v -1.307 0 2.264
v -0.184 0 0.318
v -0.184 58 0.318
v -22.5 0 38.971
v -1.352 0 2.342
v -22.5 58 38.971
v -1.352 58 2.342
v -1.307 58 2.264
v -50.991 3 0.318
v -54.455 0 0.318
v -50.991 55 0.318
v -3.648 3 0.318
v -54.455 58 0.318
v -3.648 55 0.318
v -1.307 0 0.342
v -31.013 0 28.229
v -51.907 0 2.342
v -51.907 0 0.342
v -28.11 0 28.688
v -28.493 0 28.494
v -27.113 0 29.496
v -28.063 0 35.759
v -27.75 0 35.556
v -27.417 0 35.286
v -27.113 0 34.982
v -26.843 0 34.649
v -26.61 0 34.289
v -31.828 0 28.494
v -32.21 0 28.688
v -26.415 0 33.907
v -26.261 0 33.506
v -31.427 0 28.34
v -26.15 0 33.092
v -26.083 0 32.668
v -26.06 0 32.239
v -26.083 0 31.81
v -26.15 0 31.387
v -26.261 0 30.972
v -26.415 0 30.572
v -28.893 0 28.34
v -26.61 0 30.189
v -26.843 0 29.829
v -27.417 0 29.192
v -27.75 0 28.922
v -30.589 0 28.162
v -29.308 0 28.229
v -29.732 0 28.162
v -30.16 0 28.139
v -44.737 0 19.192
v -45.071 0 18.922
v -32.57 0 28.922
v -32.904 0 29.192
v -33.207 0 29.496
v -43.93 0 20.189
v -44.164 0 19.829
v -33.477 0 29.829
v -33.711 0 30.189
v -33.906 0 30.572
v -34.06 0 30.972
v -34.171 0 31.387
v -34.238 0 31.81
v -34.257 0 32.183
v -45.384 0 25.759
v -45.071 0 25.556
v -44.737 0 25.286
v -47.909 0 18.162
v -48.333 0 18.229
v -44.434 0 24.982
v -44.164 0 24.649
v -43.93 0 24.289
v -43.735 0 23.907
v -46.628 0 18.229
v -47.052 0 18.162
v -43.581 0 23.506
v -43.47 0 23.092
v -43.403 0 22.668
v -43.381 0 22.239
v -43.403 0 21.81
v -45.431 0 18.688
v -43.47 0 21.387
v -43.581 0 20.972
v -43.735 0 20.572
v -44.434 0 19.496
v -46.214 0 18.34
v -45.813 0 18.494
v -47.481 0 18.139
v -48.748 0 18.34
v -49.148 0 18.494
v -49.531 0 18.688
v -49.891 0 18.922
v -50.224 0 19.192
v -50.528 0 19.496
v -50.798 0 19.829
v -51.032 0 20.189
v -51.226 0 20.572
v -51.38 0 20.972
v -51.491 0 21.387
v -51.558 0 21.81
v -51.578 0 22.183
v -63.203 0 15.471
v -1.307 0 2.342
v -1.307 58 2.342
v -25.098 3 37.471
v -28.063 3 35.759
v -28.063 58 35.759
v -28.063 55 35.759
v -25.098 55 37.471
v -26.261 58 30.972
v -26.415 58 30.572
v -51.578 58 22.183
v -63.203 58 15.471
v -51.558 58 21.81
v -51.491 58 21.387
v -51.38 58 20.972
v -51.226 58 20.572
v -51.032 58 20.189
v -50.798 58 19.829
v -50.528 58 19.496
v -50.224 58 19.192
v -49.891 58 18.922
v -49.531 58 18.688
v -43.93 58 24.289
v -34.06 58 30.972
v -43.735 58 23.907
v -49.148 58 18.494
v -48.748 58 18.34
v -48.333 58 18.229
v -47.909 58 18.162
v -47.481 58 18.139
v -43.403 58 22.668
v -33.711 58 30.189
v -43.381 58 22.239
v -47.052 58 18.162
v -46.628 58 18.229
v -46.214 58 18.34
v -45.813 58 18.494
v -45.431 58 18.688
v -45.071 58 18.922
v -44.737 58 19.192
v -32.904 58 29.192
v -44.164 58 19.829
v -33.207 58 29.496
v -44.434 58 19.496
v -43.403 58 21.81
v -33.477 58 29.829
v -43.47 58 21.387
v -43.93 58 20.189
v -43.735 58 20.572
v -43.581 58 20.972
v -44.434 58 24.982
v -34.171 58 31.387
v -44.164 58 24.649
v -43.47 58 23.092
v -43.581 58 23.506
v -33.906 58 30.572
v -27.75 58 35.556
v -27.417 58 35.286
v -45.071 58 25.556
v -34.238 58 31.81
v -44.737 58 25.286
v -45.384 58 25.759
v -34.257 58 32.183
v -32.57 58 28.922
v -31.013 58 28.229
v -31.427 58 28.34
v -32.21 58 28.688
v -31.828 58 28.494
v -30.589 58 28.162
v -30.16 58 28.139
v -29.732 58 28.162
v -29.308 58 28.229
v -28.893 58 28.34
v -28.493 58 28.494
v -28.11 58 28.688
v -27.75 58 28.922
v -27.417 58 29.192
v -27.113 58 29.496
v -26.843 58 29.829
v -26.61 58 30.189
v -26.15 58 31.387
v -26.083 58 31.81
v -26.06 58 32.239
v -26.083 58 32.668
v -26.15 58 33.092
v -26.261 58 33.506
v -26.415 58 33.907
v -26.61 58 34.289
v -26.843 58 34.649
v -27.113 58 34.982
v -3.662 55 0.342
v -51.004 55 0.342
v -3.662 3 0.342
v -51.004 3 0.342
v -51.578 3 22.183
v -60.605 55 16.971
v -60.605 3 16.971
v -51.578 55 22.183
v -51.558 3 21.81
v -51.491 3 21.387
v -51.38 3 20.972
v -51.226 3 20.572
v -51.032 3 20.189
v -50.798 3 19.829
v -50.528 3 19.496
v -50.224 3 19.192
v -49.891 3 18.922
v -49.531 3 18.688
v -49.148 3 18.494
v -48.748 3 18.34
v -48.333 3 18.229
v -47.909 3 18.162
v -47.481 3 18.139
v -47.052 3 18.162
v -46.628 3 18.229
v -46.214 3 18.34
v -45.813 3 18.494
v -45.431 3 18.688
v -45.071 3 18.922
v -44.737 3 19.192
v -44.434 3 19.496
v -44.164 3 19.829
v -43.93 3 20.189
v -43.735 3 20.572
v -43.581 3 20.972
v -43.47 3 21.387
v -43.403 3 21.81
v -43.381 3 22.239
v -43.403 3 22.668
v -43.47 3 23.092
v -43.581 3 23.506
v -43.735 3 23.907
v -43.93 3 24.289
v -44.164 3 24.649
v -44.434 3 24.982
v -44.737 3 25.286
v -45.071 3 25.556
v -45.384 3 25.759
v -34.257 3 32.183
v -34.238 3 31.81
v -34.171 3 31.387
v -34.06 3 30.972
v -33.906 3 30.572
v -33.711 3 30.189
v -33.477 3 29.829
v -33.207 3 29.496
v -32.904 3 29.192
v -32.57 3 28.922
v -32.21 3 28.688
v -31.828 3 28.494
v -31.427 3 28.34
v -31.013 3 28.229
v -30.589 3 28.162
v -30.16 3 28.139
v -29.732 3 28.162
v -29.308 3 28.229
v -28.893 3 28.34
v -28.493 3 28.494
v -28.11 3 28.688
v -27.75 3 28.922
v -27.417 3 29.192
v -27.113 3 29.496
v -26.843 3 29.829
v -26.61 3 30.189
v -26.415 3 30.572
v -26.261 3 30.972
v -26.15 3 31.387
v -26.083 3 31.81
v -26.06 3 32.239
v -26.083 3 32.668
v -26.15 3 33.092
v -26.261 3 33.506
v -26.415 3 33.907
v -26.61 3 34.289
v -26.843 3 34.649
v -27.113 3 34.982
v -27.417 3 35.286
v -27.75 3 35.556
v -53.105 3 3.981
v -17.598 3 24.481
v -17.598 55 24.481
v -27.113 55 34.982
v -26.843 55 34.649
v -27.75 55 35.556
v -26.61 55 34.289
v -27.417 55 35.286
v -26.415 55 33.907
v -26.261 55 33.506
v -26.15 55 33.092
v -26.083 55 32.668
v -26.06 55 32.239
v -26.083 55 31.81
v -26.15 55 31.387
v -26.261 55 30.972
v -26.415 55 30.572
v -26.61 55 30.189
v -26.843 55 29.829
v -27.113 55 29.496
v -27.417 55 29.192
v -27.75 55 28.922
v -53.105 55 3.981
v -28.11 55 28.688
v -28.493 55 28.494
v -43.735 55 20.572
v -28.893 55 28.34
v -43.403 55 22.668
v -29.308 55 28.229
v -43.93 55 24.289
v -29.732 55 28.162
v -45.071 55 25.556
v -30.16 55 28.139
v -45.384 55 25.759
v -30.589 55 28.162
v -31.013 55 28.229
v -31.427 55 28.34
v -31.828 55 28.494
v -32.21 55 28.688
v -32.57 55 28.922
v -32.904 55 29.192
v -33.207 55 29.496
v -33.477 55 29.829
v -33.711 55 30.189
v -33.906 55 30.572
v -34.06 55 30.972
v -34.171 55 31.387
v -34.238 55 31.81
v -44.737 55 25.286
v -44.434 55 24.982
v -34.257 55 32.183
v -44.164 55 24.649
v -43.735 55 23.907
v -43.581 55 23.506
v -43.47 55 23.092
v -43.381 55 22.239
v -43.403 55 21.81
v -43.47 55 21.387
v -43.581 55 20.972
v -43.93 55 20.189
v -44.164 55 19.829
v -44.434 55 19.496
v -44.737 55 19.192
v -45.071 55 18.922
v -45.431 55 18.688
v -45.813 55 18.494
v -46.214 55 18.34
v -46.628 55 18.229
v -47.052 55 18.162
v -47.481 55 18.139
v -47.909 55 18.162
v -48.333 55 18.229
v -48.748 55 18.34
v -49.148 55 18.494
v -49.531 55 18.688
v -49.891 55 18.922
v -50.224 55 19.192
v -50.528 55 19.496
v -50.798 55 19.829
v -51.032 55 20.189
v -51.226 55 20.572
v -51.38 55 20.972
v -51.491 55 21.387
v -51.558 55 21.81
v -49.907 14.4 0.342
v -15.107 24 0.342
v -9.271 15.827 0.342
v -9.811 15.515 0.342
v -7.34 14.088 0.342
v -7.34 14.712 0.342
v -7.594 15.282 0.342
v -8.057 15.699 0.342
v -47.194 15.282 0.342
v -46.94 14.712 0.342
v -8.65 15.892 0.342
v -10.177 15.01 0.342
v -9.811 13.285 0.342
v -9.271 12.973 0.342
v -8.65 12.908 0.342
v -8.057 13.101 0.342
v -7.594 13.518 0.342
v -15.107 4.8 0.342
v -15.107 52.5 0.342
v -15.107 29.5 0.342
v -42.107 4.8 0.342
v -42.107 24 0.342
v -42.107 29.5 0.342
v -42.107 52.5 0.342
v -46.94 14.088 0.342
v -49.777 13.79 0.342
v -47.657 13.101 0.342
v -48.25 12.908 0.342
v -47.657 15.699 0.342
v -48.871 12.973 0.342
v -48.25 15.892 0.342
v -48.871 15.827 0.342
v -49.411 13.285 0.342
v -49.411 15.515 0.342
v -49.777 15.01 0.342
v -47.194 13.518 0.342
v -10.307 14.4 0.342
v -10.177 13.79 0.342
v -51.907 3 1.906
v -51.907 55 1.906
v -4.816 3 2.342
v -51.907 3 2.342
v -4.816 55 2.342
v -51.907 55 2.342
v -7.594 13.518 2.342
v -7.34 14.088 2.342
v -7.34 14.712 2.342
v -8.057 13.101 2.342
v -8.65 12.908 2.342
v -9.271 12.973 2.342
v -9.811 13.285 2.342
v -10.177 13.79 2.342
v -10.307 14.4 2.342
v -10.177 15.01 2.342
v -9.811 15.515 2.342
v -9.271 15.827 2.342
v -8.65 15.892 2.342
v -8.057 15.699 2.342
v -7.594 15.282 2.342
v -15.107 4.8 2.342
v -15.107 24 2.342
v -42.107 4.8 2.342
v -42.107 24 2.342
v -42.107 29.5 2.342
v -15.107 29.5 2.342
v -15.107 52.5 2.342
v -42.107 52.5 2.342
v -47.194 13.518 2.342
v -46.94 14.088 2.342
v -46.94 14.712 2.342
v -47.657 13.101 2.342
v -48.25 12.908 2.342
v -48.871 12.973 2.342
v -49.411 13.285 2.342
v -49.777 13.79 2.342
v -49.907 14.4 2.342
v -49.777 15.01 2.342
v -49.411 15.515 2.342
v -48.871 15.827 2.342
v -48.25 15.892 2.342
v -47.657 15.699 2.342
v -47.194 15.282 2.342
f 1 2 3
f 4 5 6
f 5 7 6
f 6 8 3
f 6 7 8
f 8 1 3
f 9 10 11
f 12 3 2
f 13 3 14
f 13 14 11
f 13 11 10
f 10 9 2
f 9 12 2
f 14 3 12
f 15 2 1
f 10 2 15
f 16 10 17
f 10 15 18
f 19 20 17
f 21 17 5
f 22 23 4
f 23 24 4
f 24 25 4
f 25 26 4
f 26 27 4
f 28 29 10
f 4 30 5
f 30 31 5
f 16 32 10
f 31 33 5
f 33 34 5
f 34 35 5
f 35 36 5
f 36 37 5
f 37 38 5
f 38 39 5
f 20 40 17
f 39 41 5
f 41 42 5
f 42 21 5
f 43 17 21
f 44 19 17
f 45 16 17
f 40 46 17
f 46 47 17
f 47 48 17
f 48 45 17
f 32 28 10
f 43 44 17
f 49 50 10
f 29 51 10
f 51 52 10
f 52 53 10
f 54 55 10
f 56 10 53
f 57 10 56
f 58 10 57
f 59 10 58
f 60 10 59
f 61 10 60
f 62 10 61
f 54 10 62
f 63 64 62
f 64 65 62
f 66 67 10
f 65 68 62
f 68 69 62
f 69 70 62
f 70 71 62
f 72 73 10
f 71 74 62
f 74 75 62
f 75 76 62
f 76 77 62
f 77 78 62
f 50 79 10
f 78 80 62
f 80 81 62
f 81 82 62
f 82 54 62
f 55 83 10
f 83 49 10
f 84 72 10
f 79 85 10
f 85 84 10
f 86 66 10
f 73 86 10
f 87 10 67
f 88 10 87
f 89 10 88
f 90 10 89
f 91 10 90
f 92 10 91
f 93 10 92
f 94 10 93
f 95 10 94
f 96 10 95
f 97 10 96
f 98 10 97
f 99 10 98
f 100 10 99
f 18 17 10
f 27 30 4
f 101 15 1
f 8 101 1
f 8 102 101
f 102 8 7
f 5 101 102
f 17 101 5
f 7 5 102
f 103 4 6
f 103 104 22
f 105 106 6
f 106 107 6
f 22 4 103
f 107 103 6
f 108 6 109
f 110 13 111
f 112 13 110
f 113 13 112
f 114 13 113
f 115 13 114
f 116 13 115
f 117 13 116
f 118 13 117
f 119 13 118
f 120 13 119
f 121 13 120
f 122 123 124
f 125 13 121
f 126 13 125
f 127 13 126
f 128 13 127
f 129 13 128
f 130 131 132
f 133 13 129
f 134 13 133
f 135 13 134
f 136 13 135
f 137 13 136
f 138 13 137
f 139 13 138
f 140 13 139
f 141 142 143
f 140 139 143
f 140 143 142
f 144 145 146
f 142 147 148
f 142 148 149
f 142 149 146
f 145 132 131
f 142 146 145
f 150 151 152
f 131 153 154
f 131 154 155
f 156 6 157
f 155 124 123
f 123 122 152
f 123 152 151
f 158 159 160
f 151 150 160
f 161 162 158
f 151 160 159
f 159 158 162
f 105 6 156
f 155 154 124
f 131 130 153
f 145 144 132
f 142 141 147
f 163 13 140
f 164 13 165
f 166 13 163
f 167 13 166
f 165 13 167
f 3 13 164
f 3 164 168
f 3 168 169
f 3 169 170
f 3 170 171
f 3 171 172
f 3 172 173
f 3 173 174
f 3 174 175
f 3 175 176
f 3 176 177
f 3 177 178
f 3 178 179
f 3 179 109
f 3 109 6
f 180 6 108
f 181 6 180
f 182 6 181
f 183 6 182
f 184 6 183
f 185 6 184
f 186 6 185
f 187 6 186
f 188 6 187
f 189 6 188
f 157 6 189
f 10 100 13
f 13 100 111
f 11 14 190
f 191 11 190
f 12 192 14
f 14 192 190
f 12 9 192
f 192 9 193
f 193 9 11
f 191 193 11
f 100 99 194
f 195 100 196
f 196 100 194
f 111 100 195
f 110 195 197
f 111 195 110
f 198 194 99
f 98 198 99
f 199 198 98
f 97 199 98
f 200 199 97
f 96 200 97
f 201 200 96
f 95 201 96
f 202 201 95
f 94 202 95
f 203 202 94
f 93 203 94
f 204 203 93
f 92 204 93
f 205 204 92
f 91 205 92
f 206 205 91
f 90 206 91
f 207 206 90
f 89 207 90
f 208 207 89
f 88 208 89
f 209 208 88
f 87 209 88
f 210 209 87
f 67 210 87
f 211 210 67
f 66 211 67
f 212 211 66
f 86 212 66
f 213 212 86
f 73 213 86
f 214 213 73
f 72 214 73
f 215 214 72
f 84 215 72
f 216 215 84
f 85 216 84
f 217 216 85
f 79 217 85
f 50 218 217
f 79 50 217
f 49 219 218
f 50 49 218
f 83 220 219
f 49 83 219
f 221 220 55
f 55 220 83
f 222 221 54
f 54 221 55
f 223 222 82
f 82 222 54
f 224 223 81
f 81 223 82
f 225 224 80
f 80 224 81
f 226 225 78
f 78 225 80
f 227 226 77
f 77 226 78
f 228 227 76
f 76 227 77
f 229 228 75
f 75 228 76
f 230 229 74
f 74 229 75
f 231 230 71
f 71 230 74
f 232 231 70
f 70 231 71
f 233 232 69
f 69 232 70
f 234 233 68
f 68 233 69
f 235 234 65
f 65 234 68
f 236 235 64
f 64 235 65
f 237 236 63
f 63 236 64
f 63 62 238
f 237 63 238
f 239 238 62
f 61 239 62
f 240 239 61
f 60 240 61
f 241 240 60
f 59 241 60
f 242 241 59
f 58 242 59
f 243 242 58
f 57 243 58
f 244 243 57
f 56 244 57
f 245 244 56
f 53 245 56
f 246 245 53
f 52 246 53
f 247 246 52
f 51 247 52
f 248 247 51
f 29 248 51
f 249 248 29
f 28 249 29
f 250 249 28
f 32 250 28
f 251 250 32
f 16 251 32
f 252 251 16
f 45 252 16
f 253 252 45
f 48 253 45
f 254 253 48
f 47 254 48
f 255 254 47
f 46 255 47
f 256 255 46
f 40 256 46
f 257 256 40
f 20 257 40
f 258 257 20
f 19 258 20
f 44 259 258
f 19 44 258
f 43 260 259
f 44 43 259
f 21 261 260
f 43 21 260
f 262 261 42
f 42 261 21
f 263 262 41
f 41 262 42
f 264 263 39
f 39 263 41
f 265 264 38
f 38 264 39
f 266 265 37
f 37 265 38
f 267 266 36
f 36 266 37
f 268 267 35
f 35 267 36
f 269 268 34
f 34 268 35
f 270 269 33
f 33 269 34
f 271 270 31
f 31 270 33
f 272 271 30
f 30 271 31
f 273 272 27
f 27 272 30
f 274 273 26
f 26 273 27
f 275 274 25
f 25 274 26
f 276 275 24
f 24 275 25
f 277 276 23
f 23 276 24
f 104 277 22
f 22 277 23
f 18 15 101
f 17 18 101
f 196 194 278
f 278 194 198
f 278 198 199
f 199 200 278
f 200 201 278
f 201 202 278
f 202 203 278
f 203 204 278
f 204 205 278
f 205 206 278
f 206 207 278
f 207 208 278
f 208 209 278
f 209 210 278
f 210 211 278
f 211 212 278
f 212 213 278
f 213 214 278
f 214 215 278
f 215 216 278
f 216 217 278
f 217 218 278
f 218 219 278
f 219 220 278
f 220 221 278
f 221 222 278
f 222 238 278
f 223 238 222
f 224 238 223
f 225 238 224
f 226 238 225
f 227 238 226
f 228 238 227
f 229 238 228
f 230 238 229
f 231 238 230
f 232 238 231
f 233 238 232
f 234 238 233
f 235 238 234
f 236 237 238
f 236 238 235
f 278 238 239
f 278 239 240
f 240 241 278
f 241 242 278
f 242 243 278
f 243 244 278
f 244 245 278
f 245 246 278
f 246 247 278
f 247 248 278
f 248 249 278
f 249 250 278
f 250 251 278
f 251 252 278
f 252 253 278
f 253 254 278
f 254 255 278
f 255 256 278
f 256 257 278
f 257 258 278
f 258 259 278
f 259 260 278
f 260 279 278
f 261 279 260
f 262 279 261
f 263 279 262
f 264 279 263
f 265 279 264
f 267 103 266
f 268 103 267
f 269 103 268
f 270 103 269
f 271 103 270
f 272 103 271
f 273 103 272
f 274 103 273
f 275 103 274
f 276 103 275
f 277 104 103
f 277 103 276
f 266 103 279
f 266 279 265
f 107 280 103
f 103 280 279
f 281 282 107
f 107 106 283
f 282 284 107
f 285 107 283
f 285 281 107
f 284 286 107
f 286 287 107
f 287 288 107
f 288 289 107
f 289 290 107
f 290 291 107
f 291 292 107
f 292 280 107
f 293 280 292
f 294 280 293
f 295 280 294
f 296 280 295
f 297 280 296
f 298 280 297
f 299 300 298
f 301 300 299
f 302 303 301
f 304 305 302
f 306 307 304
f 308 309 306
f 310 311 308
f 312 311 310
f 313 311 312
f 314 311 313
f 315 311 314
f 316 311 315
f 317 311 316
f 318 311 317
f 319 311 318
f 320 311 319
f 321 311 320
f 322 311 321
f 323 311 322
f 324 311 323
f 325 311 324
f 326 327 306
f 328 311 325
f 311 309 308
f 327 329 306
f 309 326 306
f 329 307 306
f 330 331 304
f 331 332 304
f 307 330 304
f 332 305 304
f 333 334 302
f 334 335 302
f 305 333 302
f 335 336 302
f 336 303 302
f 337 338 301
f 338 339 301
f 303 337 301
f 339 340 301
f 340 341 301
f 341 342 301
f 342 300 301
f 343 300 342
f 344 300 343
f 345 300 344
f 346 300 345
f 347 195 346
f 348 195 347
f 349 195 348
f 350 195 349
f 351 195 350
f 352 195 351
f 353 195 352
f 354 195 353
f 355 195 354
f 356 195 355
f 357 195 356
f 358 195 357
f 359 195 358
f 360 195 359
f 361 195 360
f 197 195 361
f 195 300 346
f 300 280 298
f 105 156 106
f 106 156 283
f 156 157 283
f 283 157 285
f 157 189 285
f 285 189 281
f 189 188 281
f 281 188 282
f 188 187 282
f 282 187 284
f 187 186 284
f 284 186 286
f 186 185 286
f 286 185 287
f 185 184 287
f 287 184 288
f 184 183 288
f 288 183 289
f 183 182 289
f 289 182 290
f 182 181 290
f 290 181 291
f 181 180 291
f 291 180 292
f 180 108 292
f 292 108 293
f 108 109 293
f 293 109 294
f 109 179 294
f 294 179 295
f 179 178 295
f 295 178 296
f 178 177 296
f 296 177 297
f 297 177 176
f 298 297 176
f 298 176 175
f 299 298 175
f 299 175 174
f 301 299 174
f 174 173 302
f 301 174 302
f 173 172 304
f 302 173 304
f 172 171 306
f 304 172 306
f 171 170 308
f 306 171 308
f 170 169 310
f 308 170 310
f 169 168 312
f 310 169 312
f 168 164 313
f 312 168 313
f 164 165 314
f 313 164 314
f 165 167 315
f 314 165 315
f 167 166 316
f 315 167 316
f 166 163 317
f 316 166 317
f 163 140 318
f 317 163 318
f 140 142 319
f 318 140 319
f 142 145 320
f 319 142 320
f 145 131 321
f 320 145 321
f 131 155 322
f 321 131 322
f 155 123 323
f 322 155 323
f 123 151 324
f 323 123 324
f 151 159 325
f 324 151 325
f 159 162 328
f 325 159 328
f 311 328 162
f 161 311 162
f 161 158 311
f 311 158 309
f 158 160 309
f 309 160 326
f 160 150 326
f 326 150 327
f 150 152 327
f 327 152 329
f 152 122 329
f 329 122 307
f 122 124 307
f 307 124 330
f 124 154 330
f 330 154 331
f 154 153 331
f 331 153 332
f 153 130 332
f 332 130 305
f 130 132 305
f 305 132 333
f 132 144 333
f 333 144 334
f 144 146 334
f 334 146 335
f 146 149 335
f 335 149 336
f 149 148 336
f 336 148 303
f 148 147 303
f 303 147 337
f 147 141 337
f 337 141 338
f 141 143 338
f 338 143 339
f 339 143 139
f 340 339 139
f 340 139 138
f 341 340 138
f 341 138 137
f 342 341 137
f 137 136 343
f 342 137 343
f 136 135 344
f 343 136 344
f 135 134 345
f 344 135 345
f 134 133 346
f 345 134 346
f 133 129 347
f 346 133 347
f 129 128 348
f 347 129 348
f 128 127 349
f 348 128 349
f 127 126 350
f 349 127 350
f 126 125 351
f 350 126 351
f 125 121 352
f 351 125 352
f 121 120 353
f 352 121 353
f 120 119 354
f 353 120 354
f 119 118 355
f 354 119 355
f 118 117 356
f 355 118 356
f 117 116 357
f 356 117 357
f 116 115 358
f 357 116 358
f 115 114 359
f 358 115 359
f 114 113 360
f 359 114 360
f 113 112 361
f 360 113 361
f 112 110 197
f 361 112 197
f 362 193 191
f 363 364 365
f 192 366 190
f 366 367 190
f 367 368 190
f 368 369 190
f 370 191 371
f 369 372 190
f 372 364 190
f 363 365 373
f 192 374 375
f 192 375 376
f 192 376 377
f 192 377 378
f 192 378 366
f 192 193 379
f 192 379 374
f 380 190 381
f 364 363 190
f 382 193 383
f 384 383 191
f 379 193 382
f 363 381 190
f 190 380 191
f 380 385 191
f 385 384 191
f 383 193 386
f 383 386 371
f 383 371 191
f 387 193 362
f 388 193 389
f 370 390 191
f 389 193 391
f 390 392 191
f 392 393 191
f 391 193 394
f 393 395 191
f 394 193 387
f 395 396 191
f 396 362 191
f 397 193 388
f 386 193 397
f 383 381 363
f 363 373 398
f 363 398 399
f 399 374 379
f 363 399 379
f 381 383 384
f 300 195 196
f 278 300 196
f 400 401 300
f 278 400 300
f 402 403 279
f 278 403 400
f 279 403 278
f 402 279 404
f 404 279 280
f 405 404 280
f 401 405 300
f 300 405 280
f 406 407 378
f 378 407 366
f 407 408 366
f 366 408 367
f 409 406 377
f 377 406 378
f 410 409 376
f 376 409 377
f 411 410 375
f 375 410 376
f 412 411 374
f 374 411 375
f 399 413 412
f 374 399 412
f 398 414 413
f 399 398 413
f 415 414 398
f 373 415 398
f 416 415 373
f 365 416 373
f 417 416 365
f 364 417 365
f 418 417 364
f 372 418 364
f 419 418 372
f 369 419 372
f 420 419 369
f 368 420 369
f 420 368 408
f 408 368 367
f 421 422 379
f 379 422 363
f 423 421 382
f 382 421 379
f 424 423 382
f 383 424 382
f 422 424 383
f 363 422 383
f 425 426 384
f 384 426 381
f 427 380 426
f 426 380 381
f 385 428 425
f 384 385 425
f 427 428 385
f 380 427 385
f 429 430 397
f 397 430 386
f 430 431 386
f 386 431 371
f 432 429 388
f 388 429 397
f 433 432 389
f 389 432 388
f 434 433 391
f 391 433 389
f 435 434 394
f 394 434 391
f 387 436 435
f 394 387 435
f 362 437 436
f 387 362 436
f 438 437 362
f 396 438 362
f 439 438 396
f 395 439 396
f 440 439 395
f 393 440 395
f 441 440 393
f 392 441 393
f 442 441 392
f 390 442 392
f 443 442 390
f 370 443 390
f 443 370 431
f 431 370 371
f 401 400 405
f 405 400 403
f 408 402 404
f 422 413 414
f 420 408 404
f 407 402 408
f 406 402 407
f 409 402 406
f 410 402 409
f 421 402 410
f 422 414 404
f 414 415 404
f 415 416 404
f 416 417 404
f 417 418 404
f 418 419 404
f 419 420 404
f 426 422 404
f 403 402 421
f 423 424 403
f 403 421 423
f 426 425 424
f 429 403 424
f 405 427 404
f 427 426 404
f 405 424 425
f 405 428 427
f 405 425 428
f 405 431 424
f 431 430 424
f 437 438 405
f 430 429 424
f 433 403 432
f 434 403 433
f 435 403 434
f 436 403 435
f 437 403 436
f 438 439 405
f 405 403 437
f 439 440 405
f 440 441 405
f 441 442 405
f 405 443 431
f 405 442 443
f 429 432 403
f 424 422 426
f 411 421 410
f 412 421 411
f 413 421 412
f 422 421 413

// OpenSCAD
module caja () {

	difference () {
		union (){
			cube ([30,58,3]);
			translate ([0,0,44]) cube ([30,58,3]);
			cube ([30,3,45]);
			translate ([0,55,0]) cube ([30,3,45]);
		}
		translate ([-28.5,-0.5,0]) rotate ([0,30,0]) cube ([25,59,70]);

	}
	translate ([1.55,0,2]) rotate ([90,30,0])translate ([0,-1.2,0]) rotate ([0,90,0]) tapaCaja();
} // FIN MODULO CAJA

module tapaCaja(){
	difference () {
		cube ([23+26+9,27+(6.3+1.5)*2+8,2]); //53,50.6,2
		translate([24,13.80,-2])rotate([0,0,90])agujeroEnchufe();
		translate ([29.5,(50.6-27)/2+2,-2])agujeroBoton();

	}
}

module agujeroEnchufe(){
	cube([27,19.20,5]);

	translate ([-6.3,19.2/2,-2]) cylinder (r=1.5, h=10, $fn=15);
	translate ([27+6.3,19.2/2,-2]) cylinder (r=1.5, h=10, $fn=15);
}

module agujeroBoton(){
	cube([23,27,5]);	
}




module soporte(){
	difference (){
		cube ([15, 58, 47]);
		translate([-3,3,3])cube ([180, 52, 41]);
		translate ([13,-2,10]) rotate ([-90,0,0])  cylinder (r=4.1, h=157, $fn=60);
		translate ([13,-2,30]) rotate ([-90,0,0])  cylinder (r=4.1, h=157, $fn=60);
	}
}

module switchM(){
	union(){
		caja();
		translate([30,0,0])soporte();
	}
}

module boton(){
	difference (){
		cube([27,21.7,25.3]);
		translate([15.7,-0.50,0])cube([11.5,22.7,10.2]);
	}

}
module enchufe(){
	cube([30,19,26.5]);
}


rotate ([0,-120,0]) switchM();
